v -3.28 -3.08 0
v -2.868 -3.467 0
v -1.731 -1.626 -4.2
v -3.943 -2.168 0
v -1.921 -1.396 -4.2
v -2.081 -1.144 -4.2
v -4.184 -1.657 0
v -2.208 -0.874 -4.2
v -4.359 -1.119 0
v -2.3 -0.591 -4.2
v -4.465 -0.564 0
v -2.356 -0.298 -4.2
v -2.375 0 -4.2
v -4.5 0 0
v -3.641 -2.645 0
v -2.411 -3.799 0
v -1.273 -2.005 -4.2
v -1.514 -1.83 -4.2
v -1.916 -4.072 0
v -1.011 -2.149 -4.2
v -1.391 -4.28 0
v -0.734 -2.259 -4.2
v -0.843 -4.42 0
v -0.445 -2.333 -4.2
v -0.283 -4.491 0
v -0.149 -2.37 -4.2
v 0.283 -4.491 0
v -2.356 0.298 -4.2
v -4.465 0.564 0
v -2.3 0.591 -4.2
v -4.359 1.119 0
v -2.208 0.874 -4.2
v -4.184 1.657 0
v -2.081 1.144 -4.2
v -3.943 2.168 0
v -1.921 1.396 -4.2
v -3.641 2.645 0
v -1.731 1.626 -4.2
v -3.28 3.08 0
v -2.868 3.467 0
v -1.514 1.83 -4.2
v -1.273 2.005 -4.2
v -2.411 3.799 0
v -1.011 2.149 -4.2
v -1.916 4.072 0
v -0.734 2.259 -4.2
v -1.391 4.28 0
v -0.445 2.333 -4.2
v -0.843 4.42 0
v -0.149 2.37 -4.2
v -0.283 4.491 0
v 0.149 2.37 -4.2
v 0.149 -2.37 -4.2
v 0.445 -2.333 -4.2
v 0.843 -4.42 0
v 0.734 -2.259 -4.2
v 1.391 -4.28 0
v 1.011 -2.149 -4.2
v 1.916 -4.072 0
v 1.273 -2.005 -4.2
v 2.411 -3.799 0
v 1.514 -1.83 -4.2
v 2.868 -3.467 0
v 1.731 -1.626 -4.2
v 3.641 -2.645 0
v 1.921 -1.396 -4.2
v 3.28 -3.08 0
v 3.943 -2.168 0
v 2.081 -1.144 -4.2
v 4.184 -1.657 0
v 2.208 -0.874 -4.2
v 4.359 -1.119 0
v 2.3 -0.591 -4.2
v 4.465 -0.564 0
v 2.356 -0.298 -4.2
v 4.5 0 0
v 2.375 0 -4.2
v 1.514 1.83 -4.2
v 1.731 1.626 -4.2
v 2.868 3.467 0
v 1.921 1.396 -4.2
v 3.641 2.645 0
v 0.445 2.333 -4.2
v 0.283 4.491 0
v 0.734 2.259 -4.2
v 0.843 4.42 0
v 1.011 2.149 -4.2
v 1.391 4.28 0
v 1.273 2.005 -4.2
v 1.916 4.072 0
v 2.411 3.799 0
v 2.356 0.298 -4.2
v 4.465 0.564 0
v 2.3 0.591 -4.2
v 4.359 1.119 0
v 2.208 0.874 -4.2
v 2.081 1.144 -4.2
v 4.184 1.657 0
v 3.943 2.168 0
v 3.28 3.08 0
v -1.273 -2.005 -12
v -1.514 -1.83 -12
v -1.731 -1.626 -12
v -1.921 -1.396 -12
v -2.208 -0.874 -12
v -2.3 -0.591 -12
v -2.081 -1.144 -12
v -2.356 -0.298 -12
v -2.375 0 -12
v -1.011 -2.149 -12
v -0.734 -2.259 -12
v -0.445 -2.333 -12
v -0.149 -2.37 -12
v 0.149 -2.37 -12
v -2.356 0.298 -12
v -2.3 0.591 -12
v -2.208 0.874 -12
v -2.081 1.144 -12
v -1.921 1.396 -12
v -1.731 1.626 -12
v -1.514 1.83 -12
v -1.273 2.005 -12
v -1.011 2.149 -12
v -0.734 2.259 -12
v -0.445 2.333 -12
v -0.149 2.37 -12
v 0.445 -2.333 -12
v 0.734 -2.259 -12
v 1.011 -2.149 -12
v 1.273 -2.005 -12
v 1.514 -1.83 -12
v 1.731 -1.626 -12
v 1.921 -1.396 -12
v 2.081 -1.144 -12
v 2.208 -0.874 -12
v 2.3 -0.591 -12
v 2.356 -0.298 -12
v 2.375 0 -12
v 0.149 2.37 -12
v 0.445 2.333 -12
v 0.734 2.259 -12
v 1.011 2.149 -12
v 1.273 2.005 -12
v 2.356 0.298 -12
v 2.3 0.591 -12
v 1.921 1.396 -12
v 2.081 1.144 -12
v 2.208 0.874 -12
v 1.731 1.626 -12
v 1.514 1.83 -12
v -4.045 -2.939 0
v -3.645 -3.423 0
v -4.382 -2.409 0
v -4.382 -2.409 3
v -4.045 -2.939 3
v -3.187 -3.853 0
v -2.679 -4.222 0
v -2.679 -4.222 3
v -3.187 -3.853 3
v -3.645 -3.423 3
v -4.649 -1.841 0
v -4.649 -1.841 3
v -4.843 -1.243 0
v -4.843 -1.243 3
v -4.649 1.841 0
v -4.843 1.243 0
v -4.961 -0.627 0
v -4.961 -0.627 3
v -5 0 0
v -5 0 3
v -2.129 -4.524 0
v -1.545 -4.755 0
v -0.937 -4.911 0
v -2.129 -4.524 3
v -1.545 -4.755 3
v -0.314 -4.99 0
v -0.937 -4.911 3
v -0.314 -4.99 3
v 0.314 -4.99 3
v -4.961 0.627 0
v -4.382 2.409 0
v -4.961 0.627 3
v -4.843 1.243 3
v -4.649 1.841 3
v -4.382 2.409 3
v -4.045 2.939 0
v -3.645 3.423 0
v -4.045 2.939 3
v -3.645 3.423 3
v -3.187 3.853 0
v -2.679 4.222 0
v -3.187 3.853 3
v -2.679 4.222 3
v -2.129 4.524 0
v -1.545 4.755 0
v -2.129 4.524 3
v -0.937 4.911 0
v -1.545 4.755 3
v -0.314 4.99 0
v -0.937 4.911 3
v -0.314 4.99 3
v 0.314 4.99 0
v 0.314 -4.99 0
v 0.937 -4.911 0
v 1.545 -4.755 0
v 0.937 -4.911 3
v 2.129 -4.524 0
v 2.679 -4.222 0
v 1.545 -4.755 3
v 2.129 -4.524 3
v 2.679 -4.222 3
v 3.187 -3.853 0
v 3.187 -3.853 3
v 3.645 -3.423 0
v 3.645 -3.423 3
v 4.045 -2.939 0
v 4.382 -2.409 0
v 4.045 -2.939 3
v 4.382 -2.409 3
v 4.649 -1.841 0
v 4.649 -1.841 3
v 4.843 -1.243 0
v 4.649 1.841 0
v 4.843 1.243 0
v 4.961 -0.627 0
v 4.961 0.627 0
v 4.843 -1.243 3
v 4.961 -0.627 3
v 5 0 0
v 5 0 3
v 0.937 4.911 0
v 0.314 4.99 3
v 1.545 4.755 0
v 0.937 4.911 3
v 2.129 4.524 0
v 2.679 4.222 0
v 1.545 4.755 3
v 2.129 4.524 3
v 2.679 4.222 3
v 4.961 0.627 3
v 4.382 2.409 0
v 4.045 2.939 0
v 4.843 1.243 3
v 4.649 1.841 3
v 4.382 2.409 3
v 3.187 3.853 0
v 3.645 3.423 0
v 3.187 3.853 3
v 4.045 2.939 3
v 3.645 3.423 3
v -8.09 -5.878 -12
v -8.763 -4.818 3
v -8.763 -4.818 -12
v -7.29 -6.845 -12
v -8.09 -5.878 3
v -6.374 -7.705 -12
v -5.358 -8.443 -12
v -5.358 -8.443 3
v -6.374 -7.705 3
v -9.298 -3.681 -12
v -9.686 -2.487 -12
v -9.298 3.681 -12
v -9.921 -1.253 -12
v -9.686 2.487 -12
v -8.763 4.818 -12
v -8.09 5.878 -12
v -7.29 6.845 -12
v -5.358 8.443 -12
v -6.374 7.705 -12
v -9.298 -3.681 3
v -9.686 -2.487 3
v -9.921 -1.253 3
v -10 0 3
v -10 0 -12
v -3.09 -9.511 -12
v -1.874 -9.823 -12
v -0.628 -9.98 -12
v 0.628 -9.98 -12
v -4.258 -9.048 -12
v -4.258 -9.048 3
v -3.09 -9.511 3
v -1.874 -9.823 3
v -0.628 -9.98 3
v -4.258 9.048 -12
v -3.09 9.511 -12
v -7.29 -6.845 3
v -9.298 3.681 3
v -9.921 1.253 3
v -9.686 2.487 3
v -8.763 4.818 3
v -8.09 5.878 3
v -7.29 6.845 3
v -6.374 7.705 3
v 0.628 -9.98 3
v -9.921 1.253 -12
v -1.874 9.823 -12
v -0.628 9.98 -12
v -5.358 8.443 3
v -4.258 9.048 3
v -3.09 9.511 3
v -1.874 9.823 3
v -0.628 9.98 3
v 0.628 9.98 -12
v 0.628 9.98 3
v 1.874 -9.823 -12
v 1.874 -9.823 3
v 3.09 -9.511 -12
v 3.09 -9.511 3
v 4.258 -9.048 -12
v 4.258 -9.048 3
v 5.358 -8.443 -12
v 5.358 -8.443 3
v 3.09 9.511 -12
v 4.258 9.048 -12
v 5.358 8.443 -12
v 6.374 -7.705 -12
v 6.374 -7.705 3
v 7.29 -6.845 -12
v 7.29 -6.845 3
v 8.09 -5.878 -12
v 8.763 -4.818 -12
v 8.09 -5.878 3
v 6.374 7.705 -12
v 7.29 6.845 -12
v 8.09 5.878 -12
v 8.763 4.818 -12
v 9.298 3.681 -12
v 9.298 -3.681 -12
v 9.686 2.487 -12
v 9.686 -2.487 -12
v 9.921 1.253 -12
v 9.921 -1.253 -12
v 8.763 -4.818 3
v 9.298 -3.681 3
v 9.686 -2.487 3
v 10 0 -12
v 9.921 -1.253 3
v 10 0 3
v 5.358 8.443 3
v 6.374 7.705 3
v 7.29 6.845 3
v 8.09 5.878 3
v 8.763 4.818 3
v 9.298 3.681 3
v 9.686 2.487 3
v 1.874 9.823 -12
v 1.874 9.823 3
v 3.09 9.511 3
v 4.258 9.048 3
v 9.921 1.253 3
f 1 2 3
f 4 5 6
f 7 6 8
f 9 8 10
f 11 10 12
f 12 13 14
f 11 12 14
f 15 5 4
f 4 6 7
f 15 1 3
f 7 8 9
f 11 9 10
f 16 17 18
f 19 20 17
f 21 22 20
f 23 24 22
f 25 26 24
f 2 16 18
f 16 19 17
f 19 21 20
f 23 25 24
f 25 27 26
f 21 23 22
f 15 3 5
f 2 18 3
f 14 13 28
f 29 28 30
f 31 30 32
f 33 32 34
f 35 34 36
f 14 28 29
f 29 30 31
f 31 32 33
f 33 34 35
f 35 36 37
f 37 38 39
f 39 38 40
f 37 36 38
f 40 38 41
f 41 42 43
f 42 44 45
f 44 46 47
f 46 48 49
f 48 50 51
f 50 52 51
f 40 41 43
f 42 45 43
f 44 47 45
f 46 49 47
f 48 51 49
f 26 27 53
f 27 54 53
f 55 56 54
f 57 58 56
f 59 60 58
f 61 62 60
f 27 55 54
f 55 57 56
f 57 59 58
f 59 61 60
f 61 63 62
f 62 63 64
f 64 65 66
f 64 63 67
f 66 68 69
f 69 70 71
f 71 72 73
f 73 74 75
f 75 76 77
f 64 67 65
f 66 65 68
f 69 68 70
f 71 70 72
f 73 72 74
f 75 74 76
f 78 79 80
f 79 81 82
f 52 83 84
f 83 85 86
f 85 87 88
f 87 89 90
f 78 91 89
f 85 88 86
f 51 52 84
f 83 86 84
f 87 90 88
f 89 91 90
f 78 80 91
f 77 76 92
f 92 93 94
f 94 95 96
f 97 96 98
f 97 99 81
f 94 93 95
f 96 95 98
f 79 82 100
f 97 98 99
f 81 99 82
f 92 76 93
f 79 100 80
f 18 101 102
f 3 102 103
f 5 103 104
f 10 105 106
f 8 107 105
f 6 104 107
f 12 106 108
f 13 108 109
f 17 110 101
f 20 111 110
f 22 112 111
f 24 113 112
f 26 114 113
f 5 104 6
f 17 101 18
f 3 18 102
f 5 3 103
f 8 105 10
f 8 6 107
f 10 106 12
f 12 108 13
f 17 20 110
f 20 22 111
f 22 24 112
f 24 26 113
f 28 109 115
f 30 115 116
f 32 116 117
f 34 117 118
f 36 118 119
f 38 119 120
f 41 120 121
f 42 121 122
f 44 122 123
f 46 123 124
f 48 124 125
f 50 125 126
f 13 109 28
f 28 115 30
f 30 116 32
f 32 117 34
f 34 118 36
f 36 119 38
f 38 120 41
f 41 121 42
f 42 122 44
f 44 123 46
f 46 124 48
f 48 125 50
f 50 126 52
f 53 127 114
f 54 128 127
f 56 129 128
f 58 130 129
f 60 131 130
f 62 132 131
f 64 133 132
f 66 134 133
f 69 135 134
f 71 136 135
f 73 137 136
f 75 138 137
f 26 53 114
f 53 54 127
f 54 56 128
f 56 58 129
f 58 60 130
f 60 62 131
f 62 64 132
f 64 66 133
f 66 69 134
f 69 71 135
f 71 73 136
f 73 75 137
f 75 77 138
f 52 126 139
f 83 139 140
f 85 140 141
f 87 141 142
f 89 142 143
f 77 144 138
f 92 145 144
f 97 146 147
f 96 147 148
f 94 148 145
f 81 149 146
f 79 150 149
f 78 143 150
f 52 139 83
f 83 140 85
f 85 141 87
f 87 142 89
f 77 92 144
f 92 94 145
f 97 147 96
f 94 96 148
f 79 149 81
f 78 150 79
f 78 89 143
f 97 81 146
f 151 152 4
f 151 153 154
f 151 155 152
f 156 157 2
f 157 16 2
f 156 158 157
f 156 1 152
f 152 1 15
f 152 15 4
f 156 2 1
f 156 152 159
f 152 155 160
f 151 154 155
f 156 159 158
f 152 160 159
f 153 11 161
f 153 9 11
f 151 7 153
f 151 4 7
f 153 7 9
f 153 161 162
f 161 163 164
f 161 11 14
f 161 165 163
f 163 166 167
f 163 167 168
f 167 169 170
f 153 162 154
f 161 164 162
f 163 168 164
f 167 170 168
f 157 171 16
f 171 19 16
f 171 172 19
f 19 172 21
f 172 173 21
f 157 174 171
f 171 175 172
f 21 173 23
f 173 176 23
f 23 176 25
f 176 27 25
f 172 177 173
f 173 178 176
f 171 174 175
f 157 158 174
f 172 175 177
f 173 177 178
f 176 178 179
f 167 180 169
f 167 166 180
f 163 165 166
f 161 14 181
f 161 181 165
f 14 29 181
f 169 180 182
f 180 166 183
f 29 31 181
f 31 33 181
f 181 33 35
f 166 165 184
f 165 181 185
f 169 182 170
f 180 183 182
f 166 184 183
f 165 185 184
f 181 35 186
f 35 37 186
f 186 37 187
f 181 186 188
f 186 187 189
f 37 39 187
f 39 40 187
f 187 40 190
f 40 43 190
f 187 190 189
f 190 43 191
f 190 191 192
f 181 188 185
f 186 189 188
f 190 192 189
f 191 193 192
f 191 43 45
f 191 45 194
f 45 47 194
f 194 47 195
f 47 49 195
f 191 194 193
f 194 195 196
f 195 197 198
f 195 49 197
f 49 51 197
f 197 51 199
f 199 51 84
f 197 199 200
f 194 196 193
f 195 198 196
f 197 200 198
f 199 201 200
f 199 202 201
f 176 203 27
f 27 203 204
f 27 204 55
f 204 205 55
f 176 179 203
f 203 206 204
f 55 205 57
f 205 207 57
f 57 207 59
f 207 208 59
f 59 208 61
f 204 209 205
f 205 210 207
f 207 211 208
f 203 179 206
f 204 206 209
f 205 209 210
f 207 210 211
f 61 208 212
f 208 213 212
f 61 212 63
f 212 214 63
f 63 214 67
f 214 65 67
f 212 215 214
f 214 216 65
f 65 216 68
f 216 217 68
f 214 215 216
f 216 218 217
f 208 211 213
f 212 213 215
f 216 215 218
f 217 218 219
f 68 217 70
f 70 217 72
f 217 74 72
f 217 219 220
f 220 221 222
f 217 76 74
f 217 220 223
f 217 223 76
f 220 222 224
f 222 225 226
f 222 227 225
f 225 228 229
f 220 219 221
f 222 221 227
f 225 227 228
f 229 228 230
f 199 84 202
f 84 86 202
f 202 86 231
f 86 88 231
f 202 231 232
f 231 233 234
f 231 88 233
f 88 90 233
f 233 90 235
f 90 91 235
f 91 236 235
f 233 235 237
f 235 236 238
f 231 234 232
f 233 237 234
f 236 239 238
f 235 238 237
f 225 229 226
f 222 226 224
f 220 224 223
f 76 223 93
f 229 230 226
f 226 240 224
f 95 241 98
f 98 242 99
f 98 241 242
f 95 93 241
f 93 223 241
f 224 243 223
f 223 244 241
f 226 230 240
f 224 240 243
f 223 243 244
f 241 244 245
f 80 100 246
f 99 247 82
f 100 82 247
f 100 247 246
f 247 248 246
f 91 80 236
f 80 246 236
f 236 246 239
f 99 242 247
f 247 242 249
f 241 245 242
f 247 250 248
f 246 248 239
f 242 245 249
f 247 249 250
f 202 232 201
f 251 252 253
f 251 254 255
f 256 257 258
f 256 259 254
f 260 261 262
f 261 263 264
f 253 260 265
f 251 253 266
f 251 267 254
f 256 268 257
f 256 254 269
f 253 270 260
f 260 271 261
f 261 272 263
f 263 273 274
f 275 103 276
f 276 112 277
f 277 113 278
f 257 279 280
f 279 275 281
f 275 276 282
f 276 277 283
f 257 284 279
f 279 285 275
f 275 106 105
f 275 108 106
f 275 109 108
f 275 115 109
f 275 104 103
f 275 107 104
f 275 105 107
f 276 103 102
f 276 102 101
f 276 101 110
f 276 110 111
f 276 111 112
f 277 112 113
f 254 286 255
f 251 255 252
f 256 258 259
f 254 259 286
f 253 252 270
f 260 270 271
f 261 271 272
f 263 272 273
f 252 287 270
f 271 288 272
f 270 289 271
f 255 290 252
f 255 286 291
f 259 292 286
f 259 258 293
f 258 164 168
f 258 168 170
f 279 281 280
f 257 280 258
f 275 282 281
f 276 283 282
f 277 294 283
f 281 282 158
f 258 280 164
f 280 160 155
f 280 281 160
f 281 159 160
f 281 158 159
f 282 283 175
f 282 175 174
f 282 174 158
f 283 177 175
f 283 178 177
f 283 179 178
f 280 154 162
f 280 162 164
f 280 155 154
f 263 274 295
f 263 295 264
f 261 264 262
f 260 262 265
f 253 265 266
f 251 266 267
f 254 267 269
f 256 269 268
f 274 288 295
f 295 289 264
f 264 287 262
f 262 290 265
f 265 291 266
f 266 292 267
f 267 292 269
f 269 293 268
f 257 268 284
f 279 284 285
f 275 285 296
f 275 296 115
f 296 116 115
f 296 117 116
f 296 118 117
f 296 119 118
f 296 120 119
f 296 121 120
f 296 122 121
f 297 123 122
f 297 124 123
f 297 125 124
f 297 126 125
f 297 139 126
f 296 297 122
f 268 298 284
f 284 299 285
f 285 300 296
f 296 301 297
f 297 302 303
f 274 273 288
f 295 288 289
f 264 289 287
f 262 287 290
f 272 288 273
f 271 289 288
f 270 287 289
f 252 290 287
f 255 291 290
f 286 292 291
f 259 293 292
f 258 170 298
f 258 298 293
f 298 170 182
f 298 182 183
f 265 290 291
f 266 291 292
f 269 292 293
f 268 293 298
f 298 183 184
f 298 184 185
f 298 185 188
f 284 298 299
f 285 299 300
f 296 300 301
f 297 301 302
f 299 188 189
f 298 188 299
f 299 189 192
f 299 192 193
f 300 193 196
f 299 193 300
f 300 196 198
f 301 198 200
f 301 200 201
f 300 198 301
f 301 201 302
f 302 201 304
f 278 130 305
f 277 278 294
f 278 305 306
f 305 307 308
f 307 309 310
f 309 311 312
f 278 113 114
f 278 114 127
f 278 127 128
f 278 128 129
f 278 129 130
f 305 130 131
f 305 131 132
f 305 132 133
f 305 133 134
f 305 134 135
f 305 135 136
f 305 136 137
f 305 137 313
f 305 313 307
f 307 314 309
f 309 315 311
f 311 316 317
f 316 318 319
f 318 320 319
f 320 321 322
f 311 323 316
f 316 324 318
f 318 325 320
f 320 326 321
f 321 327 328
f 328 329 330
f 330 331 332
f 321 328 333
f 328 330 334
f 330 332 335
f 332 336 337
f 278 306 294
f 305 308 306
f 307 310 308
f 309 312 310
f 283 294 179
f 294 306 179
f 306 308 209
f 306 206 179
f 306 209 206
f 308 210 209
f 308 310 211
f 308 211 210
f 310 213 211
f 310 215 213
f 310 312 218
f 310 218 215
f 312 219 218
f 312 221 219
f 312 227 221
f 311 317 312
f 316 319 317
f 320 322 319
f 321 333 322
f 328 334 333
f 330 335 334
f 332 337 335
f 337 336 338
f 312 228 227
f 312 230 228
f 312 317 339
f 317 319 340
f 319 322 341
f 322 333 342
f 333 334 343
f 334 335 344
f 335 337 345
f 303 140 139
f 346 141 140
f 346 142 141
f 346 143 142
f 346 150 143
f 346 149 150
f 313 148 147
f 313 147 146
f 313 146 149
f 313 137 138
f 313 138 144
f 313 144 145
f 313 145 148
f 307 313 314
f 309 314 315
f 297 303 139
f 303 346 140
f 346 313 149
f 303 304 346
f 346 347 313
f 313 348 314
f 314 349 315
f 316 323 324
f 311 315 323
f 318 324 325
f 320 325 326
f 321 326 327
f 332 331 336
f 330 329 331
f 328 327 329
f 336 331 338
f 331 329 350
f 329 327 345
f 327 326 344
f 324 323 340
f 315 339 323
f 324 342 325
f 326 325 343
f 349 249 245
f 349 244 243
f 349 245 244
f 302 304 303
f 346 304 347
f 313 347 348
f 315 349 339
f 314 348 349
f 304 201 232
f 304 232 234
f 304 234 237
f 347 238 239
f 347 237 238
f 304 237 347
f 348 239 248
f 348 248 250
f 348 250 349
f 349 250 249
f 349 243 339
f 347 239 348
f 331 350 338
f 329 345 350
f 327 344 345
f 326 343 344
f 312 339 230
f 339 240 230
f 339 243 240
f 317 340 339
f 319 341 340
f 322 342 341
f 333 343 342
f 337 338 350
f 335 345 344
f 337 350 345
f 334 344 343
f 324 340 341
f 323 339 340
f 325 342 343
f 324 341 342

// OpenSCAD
$fn = 50;

difference() {
	union() {
		translate(v = [0, 0, -12.0]) {
			cylinder(h = 15, r = 10.0);
		}
	}
	union() {
		translate(v = [0, 0, 0]) {
			rotate(a = [0, 0, 0]) {
				difference() {
					union() {
						translate(v = [0, 0, -15.0]) {
							cylinder(h = 15, r = 2.25);
						}
						translate(v = [0, 0, -4.2]) {
							cylinder(h = 4.2, r1 = 2.375, r2 = 4.5);
						}
						translate(v = [0, 0, -15.0]) {
							cylinder(h = 15, r = 2.375);
						}
						translate(v = [0, 0, -15.0]) {
							cylinder(h = 15, r = 2.25);
						}
					}
					union();
				}
			}
		}
		#cylinder(h = 3, r = 5.0);
	}
}
